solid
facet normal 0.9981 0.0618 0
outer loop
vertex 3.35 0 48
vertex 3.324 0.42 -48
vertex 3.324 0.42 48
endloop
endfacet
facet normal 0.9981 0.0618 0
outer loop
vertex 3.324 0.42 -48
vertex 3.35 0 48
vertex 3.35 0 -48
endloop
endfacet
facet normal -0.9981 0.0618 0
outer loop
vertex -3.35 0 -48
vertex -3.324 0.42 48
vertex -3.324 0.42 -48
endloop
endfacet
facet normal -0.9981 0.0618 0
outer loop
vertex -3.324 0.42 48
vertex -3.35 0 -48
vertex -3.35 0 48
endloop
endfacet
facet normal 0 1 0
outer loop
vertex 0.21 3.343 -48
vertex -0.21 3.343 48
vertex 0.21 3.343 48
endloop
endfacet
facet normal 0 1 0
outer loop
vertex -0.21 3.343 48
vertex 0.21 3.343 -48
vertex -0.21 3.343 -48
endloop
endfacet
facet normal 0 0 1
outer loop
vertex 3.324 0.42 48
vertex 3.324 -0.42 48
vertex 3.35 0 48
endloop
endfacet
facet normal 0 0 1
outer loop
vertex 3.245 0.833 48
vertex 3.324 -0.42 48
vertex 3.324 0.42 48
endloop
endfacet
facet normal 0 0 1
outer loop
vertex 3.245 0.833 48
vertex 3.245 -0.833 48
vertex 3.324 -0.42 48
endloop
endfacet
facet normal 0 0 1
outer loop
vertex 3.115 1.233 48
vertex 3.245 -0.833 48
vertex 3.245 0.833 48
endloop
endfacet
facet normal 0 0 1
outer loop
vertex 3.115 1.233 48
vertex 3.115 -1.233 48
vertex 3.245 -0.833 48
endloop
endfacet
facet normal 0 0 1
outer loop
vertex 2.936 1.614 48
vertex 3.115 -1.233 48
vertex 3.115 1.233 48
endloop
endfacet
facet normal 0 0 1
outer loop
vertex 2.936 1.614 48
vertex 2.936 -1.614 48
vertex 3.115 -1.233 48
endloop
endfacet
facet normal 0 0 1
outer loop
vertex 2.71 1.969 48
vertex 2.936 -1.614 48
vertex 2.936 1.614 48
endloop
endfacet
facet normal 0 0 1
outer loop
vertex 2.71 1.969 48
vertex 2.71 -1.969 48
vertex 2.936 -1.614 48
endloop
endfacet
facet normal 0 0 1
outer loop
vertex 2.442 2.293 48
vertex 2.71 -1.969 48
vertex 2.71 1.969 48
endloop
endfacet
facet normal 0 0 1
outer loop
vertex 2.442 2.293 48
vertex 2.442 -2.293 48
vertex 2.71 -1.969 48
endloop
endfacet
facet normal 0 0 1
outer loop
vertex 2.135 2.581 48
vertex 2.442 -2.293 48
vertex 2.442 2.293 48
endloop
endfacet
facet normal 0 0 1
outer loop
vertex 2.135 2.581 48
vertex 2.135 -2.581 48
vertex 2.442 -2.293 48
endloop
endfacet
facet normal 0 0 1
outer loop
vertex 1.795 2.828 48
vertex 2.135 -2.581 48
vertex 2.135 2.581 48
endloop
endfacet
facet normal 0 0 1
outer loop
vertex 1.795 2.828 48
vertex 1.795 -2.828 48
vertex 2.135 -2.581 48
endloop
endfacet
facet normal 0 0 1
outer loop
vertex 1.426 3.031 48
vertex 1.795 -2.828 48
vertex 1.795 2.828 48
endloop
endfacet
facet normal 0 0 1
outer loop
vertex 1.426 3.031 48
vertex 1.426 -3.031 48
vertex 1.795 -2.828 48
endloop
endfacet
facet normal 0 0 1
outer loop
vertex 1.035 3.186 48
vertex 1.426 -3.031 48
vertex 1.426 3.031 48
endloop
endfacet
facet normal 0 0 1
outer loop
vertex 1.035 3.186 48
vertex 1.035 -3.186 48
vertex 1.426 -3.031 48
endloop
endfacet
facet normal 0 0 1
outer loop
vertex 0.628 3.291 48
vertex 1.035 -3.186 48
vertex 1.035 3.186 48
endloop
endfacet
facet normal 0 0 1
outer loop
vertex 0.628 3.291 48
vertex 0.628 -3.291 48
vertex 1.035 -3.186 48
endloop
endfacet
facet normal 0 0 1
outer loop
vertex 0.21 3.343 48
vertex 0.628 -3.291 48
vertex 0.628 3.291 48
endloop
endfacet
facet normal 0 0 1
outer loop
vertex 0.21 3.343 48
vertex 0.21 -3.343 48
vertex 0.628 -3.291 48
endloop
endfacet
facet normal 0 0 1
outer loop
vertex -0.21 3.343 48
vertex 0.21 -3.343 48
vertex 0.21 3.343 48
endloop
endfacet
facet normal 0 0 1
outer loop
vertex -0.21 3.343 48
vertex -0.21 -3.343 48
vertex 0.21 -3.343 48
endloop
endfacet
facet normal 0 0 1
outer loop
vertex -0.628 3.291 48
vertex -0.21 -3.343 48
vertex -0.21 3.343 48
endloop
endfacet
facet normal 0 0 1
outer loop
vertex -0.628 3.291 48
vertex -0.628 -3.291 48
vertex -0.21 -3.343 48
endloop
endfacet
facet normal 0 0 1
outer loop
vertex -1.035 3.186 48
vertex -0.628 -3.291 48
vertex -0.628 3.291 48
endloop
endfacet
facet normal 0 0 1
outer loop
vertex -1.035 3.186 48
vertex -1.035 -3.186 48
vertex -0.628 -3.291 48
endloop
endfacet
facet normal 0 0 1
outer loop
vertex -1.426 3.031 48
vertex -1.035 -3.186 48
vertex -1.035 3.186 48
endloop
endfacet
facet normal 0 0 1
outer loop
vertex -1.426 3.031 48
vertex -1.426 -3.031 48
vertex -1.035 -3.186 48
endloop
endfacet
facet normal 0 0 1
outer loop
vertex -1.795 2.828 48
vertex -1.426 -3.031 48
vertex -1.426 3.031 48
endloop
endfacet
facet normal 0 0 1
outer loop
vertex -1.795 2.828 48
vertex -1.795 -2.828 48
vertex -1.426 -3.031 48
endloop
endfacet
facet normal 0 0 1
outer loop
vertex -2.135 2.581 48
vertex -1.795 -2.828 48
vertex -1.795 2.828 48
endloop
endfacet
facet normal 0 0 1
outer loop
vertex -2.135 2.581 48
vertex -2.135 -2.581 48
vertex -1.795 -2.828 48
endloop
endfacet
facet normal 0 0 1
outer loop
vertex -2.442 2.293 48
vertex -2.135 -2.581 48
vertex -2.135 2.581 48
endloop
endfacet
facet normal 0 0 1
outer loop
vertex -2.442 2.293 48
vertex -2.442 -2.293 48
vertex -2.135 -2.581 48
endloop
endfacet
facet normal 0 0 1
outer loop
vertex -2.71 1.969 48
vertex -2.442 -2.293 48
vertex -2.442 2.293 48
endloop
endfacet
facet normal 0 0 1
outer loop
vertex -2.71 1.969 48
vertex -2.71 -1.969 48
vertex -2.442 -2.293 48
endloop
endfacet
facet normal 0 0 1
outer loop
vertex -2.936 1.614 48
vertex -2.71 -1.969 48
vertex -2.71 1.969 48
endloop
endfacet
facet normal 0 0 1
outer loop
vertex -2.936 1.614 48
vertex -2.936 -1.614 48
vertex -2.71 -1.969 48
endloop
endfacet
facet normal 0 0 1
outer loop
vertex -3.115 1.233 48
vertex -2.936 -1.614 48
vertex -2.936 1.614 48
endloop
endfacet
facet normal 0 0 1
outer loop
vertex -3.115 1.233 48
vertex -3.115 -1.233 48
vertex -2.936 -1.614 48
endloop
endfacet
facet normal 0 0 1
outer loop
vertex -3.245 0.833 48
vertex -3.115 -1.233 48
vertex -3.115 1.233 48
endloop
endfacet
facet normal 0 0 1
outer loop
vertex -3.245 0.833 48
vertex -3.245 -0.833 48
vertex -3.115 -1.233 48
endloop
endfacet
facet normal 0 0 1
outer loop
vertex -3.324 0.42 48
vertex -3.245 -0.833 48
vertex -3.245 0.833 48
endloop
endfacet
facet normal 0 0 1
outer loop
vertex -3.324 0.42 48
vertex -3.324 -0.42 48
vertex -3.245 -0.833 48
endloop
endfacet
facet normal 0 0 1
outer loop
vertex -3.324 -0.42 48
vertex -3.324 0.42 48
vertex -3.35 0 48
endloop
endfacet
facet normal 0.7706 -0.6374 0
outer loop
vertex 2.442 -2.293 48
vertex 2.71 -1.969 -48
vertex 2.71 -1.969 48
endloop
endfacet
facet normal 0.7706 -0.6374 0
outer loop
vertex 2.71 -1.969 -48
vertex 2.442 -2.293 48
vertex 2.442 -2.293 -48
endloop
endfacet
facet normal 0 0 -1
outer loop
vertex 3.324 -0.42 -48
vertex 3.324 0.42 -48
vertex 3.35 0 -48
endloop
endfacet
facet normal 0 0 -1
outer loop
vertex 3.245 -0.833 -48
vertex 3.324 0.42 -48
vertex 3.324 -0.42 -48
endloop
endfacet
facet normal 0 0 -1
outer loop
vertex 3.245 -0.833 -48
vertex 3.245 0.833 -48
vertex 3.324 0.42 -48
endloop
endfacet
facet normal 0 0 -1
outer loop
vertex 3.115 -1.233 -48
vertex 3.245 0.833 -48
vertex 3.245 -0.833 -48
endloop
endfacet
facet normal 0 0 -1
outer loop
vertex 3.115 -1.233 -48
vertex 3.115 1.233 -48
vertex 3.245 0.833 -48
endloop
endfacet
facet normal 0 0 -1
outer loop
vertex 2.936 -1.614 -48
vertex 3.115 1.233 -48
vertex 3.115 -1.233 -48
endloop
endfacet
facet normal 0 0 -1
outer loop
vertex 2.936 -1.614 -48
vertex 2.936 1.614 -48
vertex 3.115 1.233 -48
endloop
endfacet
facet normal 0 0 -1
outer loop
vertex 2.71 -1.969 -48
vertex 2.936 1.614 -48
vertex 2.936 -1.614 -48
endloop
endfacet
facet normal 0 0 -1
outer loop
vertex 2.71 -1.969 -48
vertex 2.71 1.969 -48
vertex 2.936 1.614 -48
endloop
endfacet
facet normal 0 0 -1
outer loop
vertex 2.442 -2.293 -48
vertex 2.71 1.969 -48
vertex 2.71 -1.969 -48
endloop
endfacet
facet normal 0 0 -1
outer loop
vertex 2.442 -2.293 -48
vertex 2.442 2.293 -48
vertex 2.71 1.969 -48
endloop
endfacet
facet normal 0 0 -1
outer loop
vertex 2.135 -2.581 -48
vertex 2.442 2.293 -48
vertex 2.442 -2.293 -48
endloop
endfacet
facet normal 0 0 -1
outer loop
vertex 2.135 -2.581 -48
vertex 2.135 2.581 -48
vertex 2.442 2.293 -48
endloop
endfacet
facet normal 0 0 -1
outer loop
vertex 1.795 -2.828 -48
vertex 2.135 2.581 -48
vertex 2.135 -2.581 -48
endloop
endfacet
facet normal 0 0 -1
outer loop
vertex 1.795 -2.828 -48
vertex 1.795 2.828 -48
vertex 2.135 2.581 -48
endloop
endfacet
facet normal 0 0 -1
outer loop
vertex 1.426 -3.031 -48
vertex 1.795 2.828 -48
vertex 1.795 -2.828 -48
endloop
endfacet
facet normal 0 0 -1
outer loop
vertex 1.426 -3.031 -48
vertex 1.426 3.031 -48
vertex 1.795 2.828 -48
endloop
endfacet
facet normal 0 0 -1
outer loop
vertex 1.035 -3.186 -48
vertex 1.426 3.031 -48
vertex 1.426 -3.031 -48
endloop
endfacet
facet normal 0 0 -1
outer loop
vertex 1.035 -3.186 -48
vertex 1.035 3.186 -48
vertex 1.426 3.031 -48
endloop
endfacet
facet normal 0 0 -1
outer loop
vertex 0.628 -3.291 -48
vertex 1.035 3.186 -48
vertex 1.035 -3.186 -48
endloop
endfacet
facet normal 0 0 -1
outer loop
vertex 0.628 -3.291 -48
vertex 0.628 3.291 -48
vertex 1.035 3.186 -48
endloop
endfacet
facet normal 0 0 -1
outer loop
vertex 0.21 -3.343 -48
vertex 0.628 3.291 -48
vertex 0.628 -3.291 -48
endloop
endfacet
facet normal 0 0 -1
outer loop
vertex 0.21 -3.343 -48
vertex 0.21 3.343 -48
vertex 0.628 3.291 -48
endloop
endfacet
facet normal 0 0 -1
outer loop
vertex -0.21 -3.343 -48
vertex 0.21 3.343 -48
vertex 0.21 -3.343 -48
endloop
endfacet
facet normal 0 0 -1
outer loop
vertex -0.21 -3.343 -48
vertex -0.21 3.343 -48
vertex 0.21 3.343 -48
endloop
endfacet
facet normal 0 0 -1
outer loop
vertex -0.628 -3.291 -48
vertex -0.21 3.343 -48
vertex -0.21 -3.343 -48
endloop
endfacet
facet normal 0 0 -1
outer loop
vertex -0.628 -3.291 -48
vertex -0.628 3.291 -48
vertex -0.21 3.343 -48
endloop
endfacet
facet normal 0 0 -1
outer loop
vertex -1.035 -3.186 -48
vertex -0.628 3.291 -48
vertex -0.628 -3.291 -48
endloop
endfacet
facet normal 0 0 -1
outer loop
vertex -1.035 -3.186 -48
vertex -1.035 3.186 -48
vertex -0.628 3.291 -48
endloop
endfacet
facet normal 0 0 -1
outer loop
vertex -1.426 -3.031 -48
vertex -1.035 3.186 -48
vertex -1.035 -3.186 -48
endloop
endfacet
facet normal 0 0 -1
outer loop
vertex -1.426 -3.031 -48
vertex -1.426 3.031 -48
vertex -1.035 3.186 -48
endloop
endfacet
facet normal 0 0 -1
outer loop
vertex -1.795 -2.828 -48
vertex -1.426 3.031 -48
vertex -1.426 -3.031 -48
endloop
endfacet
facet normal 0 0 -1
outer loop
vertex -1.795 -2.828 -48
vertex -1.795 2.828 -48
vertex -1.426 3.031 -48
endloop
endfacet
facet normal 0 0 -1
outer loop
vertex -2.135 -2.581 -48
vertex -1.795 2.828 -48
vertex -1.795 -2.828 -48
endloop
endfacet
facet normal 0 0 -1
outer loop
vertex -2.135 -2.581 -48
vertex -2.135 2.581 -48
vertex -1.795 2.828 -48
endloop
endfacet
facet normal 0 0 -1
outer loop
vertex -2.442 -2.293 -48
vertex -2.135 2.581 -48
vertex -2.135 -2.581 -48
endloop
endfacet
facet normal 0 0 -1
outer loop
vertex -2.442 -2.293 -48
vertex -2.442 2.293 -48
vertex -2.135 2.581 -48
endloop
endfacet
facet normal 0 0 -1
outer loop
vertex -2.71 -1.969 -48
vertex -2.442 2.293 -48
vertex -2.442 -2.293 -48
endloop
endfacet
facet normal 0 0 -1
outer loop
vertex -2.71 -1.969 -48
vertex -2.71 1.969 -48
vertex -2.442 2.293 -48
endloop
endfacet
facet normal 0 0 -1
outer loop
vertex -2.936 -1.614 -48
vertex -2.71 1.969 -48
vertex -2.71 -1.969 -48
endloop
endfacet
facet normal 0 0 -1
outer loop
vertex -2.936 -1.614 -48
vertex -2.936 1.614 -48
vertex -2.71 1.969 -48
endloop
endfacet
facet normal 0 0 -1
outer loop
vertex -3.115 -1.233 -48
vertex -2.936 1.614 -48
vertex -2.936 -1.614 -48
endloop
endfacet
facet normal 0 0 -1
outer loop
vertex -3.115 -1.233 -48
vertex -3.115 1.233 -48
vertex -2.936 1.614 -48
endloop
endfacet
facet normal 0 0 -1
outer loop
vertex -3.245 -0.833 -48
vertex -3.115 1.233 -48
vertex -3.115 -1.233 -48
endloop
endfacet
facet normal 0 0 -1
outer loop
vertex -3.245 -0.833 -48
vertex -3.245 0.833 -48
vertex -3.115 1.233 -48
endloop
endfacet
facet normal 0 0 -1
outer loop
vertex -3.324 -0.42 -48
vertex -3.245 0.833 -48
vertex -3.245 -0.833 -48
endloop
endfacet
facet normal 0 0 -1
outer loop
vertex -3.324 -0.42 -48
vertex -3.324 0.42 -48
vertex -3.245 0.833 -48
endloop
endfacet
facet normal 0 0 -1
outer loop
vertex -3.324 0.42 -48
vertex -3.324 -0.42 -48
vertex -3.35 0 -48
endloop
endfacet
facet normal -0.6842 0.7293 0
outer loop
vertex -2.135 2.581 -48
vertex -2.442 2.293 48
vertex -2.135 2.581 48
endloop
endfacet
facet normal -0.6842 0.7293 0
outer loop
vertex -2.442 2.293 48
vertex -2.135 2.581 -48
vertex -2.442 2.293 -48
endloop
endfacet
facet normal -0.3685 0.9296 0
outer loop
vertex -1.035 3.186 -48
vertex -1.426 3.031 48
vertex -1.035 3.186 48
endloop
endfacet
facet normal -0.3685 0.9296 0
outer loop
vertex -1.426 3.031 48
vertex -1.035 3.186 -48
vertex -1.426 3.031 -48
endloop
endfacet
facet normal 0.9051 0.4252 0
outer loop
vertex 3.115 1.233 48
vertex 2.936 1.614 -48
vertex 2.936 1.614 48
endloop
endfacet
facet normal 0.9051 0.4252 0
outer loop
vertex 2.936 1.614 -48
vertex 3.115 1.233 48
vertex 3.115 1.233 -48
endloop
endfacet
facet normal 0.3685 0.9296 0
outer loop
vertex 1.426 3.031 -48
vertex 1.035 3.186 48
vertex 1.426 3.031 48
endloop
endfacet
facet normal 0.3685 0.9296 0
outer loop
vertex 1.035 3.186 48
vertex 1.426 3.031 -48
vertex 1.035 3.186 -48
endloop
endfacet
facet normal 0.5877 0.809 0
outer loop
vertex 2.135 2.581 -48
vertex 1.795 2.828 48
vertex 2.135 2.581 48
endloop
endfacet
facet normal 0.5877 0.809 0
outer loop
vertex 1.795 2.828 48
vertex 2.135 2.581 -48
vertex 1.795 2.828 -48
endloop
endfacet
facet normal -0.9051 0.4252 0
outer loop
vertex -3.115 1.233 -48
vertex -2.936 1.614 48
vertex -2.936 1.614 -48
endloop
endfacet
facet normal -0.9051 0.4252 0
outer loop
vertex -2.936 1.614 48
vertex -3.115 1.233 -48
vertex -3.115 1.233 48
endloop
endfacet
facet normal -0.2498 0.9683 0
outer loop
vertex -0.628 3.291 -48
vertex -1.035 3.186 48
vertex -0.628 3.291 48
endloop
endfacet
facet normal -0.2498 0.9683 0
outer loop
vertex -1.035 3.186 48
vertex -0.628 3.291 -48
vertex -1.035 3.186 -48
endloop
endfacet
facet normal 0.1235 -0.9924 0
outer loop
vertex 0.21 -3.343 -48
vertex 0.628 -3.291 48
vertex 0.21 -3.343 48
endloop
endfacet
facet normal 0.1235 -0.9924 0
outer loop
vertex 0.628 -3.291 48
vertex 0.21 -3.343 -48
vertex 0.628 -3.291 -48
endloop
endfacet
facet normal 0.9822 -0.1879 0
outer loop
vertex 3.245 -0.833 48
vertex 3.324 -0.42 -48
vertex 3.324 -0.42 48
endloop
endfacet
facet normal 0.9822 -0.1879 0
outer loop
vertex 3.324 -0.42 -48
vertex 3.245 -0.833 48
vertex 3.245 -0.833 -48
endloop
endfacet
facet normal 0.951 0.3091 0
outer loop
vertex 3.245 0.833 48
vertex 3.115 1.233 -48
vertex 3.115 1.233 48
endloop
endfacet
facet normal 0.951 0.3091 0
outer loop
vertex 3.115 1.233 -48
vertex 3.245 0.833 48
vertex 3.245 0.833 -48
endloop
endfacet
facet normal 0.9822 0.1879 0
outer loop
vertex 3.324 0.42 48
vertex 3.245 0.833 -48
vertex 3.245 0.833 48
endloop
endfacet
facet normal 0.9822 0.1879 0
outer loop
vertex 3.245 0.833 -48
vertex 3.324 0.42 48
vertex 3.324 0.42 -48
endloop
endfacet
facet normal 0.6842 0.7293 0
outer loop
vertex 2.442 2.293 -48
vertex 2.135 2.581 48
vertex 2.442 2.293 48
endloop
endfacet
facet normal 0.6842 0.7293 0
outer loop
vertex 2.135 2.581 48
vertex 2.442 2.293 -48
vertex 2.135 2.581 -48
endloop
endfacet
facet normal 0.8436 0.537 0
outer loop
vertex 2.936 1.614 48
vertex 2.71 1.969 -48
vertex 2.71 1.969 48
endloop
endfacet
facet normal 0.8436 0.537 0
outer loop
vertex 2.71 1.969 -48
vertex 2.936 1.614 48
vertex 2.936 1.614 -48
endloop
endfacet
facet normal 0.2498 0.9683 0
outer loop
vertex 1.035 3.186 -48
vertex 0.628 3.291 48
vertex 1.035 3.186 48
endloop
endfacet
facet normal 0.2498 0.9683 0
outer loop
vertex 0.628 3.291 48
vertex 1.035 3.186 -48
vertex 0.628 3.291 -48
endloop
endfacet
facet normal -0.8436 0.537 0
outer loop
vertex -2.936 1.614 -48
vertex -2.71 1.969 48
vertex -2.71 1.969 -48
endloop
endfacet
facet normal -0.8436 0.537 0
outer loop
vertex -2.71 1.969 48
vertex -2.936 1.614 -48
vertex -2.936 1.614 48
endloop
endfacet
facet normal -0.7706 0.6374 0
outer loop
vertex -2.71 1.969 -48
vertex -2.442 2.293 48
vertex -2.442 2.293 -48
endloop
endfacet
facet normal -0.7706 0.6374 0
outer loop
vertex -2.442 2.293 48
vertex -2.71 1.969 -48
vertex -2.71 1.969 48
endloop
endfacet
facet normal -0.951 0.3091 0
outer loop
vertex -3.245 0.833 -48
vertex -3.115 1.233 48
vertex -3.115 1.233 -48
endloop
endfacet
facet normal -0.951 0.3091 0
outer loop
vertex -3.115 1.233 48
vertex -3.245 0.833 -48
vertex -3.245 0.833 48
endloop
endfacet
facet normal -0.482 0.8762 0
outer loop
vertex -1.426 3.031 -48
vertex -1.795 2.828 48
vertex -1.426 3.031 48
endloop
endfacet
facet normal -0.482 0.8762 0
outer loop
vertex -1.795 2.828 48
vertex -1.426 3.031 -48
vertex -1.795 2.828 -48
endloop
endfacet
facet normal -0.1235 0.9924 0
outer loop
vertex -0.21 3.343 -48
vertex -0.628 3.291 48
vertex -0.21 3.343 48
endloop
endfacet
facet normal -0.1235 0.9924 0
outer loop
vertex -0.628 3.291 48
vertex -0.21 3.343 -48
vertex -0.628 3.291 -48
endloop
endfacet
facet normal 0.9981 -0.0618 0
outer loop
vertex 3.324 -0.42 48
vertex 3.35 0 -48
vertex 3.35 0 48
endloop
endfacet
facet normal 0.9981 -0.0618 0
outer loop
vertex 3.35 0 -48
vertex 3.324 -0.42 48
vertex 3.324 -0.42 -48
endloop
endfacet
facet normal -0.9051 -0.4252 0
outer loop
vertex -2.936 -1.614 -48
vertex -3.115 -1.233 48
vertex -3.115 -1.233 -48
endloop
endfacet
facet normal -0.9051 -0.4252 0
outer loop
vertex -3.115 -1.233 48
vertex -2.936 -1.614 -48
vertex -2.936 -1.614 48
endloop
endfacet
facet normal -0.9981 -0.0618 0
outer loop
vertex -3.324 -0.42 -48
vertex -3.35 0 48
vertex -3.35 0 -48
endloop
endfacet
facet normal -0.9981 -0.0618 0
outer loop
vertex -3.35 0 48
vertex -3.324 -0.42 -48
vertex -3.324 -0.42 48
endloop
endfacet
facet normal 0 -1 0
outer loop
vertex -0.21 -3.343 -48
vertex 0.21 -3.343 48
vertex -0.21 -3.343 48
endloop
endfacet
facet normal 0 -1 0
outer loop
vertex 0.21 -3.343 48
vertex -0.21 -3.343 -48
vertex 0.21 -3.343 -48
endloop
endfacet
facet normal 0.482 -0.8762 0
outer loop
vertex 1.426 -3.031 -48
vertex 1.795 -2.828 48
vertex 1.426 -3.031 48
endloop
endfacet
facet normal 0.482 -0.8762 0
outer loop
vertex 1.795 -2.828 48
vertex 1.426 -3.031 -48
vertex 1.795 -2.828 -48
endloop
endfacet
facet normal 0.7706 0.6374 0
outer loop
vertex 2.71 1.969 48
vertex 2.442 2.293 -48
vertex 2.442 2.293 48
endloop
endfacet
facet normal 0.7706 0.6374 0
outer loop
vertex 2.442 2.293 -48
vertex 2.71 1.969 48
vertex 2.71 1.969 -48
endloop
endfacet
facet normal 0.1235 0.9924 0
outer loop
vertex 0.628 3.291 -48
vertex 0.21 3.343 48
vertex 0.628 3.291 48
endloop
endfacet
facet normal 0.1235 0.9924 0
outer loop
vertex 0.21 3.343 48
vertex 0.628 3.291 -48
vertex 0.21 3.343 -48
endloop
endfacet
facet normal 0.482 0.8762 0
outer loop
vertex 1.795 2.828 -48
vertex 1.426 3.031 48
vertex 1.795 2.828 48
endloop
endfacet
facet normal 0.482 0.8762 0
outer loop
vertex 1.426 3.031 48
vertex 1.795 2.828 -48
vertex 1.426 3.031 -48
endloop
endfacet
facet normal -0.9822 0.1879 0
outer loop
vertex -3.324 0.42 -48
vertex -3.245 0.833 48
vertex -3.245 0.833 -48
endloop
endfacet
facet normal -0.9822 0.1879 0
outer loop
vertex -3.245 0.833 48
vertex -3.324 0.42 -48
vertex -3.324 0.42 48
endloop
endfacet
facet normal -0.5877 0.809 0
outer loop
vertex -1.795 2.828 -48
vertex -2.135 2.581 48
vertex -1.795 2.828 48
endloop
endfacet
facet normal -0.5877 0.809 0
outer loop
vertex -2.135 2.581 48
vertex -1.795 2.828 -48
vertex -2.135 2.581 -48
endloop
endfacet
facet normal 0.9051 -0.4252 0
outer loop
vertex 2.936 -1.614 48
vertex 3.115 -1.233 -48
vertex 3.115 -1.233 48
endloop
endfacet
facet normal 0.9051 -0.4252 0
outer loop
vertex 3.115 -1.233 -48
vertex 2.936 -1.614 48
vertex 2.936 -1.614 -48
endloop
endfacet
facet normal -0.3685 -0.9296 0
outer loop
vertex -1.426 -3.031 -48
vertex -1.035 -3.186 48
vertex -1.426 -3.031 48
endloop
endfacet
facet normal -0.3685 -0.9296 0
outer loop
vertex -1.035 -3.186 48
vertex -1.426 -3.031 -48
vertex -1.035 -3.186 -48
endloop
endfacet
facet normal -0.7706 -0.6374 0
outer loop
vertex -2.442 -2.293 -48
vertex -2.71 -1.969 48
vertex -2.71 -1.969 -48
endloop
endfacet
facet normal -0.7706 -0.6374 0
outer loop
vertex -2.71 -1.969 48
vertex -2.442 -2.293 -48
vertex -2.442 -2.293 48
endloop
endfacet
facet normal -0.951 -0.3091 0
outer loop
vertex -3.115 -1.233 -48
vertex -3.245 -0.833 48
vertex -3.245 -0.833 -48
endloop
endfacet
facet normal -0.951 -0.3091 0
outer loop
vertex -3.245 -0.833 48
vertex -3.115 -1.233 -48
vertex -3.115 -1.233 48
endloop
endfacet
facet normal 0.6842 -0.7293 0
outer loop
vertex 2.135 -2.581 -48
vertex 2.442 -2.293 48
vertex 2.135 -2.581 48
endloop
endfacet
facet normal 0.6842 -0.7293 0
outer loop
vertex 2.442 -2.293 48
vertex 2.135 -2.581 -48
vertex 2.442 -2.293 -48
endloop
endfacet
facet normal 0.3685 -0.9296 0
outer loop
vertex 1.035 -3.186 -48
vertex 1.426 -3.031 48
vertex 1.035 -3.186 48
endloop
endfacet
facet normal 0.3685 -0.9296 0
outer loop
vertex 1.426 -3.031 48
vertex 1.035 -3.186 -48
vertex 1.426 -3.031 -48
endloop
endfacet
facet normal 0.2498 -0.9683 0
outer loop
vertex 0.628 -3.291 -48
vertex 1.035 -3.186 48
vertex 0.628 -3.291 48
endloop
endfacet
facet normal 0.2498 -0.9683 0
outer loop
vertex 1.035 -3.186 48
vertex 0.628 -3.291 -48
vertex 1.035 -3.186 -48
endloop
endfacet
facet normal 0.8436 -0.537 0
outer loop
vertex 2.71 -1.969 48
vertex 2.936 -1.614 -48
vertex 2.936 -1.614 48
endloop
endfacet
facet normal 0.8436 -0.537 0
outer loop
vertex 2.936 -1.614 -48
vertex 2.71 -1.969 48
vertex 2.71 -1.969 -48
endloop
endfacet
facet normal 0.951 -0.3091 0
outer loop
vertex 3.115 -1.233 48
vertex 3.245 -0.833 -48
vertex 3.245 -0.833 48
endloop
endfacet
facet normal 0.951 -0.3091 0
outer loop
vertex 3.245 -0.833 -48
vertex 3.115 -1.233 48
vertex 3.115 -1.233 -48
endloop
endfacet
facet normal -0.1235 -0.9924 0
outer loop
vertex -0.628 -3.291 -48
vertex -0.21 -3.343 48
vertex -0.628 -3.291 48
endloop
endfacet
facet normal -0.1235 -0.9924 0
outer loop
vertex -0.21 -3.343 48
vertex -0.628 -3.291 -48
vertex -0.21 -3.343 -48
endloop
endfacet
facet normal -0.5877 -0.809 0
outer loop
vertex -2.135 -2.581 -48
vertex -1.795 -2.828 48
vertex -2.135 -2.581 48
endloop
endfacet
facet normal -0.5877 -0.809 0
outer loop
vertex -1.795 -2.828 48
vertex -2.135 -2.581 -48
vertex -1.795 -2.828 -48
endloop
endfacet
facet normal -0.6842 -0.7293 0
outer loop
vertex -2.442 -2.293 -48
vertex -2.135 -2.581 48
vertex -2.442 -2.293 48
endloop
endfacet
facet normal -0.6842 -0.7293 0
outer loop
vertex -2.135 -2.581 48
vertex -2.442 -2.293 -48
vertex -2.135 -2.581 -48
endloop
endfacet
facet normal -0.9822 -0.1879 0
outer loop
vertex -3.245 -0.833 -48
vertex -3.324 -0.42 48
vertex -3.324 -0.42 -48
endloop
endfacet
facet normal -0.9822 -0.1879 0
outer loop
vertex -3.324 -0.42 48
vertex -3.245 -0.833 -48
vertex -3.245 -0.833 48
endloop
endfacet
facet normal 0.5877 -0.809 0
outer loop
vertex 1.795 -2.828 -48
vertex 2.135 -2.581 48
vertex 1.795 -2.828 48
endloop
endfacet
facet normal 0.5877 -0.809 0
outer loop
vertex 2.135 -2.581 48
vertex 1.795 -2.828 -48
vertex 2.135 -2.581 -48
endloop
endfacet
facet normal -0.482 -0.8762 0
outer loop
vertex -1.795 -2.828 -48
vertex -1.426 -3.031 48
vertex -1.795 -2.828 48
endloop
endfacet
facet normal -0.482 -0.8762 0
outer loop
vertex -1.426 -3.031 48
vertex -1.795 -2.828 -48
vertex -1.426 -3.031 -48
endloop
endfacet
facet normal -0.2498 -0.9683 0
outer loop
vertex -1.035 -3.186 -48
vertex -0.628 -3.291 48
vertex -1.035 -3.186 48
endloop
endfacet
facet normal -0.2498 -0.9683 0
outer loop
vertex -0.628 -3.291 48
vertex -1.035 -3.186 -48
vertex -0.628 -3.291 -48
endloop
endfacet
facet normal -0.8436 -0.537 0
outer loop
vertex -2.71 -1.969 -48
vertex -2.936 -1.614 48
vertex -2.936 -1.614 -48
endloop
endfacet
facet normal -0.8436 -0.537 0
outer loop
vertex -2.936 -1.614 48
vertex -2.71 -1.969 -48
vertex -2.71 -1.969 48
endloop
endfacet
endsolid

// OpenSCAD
$fn = 50;


difference() {
	union() {
		translate(v = [0, 0, -48.0000000000]) {
			cylinder(h = 96, r = 3.3500000000);
		}
	}
	union() {
		translate(v = [0, 0, -100.0000000000]) {
			cylinder(h = 200, r = 0);
		}
	}
}
